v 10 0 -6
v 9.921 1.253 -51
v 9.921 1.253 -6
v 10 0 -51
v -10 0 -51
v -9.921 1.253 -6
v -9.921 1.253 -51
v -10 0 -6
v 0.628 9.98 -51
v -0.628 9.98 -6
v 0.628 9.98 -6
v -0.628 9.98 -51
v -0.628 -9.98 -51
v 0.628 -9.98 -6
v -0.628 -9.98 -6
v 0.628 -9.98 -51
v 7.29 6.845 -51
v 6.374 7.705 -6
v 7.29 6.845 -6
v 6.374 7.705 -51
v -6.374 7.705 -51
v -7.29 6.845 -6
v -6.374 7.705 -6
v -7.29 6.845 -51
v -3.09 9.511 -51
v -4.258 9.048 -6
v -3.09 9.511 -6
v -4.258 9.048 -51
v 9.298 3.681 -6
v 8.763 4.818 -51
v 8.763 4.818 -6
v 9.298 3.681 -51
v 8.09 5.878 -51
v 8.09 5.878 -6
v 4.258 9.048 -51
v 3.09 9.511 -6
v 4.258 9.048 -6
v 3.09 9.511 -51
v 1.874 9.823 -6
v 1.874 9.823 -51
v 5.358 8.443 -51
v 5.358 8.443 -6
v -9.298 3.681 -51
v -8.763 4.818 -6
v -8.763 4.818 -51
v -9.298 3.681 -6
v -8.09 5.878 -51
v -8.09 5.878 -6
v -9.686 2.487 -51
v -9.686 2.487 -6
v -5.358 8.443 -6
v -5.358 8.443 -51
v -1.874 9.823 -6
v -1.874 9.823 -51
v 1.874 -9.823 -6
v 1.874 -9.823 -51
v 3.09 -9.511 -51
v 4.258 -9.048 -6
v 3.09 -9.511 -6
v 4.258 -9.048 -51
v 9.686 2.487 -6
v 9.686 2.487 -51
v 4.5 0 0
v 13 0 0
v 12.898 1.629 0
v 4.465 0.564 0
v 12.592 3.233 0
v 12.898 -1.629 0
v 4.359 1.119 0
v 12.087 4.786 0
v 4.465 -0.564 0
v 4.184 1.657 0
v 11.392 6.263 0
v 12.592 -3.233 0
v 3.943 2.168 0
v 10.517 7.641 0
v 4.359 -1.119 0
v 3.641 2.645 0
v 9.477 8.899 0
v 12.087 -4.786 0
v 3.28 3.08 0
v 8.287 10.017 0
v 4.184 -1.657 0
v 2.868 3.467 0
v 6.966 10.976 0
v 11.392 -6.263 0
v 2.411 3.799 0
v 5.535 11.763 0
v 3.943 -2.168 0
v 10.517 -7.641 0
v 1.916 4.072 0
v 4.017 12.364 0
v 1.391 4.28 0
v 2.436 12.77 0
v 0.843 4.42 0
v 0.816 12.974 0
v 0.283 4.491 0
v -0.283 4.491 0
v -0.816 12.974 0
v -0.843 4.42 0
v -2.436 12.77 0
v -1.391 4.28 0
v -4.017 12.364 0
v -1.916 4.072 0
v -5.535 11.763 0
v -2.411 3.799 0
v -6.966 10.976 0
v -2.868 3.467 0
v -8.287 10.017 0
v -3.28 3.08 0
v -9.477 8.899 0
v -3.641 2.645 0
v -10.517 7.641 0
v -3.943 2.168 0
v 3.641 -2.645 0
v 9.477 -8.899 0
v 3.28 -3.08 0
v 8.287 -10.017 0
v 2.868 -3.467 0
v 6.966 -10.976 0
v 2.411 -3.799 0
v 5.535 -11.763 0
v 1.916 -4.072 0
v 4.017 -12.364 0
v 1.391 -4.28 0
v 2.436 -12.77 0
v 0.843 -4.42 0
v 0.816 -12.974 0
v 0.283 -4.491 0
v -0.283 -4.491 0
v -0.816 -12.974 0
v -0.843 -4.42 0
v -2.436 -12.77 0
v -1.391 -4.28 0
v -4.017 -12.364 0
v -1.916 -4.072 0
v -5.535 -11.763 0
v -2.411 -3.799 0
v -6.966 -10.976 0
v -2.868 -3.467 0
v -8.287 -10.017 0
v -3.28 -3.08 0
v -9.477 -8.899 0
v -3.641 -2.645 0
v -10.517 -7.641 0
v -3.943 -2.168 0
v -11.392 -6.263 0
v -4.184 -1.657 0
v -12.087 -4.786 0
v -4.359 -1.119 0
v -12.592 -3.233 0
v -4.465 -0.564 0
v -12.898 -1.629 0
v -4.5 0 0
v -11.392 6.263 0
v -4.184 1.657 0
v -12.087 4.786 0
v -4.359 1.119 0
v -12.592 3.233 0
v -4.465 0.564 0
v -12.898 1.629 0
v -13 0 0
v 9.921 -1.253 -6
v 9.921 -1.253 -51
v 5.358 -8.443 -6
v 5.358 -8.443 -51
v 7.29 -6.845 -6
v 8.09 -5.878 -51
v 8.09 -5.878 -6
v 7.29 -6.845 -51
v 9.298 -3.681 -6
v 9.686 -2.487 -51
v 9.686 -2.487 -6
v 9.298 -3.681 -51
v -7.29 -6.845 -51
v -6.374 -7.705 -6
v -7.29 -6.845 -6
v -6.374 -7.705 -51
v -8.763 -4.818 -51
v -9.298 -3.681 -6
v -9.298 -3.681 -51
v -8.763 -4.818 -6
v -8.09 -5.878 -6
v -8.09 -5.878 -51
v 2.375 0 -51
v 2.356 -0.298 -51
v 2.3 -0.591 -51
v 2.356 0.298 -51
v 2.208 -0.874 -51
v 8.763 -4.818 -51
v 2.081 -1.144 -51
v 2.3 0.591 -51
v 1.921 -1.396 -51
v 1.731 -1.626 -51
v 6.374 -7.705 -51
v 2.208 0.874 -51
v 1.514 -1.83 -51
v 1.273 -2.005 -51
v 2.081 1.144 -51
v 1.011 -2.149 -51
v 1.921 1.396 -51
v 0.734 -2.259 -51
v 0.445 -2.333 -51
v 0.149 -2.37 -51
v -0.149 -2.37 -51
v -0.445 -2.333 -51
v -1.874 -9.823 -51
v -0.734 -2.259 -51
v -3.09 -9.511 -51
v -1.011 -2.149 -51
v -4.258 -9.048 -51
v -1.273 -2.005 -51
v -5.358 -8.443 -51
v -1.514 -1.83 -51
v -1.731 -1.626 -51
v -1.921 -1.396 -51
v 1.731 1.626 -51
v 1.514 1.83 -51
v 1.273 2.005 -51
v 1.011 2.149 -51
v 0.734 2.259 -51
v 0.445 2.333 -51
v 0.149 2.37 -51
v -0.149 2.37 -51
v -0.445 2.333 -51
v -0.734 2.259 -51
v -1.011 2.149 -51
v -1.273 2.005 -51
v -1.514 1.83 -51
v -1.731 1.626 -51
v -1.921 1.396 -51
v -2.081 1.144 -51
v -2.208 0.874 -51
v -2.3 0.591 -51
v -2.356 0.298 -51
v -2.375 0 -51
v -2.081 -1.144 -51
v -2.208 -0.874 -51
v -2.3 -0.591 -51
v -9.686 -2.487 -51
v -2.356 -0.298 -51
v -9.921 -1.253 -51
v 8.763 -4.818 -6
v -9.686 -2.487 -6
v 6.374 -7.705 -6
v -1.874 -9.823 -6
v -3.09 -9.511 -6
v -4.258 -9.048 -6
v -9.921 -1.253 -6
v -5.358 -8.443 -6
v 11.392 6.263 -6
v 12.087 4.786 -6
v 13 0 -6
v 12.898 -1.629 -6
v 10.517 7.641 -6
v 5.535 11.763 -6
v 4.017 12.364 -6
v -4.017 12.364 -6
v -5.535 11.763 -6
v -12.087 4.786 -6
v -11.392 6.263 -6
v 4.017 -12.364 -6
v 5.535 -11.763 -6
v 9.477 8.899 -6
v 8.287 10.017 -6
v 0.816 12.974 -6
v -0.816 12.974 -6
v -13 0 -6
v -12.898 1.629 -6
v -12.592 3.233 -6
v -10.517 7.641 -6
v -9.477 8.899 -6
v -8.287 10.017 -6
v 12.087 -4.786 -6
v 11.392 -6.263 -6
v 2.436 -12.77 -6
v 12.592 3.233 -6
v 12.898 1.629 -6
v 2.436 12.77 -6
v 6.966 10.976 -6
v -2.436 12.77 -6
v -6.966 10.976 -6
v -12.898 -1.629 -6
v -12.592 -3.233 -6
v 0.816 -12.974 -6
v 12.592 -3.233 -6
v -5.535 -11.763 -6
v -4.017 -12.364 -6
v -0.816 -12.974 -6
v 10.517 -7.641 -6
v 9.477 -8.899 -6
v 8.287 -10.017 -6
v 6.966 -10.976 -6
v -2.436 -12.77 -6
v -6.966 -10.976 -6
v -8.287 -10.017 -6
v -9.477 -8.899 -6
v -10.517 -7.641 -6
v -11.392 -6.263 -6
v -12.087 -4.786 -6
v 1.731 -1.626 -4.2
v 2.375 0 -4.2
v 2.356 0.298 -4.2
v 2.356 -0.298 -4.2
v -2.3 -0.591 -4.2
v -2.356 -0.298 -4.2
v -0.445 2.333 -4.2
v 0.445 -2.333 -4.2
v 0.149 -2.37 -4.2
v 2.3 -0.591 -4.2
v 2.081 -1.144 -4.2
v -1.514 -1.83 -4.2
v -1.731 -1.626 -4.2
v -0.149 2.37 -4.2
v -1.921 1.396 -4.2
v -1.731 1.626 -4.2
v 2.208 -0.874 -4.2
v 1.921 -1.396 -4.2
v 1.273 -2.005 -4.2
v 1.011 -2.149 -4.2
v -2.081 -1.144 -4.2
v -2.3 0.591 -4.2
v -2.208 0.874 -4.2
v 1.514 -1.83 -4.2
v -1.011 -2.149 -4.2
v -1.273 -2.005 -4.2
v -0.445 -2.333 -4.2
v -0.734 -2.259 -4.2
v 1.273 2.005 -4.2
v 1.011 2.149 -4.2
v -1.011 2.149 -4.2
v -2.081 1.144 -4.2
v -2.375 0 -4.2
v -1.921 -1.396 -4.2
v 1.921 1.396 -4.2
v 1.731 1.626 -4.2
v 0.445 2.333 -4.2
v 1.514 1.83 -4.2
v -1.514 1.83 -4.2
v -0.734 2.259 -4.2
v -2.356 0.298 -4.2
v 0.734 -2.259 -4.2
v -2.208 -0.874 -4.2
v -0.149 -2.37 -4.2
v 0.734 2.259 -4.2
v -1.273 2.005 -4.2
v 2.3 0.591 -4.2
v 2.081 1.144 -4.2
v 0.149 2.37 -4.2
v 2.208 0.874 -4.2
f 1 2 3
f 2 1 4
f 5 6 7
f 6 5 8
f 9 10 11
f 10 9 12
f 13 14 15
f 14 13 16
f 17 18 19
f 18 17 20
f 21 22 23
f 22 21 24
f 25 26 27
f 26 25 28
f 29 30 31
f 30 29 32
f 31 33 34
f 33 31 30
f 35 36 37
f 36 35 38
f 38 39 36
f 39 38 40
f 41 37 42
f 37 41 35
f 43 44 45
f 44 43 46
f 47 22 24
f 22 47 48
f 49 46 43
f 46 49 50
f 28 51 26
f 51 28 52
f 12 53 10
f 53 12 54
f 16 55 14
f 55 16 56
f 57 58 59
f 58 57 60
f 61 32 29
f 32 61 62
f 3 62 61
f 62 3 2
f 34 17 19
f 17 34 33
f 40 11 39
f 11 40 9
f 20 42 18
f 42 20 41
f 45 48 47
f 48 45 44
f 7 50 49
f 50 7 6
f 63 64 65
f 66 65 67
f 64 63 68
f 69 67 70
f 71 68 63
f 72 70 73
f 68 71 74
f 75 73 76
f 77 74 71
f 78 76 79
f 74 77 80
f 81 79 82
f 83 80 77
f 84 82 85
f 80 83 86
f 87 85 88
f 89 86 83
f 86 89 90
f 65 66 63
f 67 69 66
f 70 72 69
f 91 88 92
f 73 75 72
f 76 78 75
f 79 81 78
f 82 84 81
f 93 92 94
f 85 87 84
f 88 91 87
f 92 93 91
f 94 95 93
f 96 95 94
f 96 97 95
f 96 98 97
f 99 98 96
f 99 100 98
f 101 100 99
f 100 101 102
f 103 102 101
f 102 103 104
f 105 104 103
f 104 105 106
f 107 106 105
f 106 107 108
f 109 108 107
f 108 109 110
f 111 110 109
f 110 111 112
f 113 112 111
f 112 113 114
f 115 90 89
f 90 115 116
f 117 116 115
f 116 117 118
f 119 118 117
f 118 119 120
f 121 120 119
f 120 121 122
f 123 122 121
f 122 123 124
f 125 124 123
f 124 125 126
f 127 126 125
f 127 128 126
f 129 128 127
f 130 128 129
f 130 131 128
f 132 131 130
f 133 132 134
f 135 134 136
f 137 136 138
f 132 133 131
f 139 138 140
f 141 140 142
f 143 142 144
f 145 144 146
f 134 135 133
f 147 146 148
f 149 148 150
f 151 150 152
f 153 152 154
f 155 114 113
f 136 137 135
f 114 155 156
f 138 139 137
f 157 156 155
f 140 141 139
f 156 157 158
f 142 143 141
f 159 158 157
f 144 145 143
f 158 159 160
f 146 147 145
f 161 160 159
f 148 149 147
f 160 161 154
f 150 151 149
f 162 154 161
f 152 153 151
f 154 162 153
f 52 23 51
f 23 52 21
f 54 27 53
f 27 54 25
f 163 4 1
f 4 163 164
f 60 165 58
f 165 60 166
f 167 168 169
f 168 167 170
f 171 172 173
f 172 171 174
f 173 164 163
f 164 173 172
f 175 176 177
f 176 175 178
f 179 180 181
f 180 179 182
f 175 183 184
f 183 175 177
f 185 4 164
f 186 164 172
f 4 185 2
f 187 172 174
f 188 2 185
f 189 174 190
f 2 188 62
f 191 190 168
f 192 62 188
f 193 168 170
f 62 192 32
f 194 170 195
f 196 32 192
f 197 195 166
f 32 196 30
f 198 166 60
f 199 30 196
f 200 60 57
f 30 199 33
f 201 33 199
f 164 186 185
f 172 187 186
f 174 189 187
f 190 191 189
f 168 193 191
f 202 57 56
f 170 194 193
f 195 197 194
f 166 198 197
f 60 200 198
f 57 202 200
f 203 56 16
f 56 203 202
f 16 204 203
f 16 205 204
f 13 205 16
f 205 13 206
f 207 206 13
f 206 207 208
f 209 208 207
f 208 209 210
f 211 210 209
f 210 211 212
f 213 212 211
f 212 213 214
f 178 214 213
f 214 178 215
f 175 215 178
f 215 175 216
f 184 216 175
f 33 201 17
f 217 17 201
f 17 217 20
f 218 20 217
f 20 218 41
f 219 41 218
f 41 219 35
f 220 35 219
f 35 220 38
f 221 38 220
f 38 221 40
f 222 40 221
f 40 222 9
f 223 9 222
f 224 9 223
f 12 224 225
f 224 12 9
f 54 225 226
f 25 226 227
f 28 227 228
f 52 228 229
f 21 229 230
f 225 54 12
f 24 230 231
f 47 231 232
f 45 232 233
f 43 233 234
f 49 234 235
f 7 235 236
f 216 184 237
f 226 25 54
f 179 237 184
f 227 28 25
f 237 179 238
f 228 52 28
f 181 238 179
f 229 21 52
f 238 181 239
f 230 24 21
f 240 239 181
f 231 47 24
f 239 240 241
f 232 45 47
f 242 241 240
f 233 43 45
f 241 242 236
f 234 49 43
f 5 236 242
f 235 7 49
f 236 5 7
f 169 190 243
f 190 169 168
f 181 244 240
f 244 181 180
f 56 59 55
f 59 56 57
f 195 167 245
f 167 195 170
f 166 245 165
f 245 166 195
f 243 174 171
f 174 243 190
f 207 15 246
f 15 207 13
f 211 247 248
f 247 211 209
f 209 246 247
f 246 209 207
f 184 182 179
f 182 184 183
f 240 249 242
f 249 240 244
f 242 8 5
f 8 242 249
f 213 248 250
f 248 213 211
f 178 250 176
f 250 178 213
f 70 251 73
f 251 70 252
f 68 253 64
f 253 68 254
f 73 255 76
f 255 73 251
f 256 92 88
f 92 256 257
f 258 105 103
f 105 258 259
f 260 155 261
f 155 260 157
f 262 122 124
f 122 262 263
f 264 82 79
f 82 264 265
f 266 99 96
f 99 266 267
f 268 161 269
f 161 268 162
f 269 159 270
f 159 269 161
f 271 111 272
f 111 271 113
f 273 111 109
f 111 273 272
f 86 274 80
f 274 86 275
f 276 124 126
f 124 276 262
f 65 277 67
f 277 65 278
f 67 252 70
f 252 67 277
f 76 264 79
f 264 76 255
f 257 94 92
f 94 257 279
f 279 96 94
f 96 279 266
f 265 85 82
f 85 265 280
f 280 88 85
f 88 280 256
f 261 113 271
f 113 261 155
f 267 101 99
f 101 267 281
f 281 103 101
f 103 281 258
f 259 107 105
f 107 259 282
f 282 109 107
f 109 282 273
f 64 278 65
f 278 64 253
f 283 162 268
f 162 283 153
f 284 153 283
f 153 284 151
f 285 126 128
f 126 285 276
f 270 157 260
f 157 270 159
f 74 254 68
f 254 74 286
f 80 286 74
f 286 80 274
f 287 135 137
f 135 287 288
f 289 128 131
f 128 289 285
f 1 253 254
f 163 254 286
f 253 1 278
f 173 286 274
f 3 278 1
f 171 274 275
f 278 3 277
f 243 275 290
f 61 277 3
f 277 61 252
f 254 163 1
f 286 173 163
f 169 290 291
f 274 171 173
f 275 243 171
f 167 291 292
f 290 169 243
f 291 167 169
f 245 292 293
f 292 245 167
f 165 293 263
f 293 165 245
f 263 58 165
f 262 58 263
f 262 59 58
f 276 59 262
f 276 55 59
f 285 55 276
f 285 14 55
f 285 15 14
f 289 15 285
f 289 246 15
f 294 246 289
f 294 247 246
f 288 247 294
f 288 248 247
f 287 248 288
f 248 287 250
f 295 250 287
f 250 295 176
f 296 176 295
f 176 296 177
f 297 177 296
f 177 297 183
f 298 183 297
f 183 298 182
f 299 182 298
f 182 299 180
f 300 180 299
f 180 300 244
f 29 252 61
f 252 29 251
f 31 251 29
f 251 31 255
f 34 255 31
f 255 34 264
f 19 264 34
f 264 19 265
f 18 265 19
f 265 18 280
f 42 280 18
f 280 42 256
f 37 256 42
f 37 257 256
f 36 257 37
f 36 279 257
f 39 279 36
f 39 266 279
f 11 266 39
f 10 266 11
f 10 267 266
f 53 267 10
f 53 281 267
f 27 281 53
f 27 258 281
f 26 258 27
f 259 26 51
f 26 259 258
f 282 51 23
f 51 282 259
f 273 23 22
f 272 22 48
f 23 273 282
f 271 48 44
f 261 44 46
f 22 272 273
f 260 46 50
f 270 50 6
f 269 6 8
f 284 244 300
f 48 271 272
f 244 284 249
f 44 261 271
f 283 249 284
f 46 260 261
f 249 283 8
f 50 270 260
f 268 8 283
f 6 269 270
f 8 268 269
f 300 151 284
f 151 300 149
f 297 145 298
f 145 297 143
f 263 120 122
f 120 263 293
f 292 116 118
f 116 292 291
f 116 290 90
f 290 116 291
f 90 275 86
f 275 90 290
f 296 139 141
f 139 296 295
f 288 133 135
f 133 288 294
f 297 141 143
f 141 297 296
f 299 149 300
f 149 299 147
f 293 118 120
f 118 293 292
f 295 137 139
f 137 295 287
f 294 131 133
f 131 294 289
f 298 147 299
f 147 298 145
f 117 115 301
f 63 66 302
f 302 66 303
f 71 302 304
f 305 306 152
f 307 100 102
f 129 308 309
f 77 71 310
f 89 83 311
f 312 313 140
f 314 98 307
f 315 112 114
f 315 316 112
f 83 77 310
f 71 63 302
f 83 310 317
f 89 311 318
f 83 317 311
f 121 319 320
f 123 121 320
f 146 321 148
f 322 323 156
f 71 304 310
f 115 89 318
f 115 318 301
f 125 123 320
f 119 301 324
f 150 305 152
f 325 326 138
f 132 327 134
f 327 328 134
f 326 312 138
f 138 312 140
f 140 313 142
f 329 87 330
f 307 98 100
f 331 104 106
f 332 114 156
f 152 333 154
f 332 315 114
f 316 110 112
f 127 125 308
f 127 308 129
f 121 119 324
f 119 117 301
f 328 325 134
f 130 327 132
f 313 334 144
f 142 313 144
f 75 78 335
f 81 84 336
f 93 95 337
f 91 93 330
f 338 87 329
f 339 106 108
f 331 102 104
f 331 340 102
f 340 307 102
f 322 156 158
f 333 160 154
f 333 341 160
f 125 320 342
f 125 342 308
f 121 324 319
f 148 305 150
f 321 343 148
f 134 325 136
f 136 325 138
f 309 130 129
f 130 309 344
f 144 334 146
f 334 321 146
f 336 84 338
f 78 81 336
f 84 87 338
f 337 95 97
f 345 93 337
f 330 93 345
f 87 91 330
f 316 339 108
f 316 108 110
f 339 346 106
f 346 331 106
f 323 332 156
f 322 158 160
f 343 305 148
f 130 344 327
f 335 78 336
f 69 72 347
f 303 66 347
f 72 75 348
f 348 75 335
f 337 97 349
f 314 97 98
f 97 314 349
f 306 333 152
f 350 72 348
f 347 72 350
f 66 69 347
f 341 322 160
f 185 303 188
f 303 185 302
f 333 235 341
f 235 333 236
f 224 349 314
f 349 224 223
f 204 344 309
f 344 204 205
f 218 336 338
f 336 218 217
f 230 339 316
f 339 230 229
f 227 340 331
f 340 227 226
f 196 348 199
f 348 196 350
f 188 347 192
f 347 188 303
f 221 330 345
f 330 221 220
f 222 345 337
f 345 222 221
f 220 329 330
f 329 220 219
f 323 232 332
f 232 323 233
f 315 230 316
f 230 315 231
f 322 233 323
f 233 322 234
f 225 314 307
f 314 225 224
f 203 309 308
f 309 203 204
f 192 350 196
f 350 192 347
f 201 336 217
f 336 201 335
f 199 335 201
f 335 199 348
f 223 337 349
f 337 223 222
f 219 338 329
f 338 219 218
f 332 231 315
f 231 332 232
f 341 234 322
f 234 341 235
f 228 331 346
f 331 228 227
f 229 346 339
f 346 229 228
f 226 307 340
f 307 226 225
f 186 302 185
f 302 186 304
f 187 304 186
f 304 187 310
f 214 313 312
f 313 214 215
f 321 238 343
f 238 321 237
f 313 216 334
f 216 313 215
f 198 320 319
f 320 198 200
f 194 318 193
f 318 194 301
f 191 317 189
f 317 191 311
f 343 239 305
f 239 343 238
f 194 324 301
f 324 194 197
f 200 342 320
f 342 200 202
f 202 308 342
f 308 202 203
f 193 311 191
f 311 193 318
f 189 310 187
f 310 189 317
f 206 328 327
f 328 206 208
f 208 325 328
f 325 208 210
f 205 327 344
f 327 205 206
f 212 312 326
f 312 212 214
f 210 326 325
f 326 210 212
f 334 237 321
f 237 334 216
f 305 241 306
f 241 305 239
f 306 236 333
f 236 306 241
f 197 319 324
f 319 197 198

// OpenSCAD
$fn = 50;


difference() {
	union() {
		translate(v = [0, 0, -51.0000000000]) {
			cylinder(h = 51, r = 10.0000000000);
		}
		translate(v = [0, 0, -6.0000000000]) {
			cylinder(h = 6, r = 13.0000000000);
		}
	}
	union() {
		translate(v = [0, 0, 0]) {
			rotate(a = [0, 0, 0]) {
				difference() {
					union() {
						#translate(v = [0, 0, -51.0000000000]) {
							cylinder(h = 51, r = 2.2500000000);
						}
						#translate(v = [0, 0, -4.2000000000]) {
							cylinder(h = 4.2000000000, r = 10.0000000000, r1 = 2.3750000000, r2 = 4.5000000000);
						}
						#translate(v = [0, 0, -51.0000000000]) {
							cylinder(h = 51, r = 2.3750000000);
						}
						#translate(v = [0, 0, -51.0000000000]) {
							cylinder(h = 51, r = 2.2500000000);
						}
					}
					union();
				}
			}
		}
	}
}
